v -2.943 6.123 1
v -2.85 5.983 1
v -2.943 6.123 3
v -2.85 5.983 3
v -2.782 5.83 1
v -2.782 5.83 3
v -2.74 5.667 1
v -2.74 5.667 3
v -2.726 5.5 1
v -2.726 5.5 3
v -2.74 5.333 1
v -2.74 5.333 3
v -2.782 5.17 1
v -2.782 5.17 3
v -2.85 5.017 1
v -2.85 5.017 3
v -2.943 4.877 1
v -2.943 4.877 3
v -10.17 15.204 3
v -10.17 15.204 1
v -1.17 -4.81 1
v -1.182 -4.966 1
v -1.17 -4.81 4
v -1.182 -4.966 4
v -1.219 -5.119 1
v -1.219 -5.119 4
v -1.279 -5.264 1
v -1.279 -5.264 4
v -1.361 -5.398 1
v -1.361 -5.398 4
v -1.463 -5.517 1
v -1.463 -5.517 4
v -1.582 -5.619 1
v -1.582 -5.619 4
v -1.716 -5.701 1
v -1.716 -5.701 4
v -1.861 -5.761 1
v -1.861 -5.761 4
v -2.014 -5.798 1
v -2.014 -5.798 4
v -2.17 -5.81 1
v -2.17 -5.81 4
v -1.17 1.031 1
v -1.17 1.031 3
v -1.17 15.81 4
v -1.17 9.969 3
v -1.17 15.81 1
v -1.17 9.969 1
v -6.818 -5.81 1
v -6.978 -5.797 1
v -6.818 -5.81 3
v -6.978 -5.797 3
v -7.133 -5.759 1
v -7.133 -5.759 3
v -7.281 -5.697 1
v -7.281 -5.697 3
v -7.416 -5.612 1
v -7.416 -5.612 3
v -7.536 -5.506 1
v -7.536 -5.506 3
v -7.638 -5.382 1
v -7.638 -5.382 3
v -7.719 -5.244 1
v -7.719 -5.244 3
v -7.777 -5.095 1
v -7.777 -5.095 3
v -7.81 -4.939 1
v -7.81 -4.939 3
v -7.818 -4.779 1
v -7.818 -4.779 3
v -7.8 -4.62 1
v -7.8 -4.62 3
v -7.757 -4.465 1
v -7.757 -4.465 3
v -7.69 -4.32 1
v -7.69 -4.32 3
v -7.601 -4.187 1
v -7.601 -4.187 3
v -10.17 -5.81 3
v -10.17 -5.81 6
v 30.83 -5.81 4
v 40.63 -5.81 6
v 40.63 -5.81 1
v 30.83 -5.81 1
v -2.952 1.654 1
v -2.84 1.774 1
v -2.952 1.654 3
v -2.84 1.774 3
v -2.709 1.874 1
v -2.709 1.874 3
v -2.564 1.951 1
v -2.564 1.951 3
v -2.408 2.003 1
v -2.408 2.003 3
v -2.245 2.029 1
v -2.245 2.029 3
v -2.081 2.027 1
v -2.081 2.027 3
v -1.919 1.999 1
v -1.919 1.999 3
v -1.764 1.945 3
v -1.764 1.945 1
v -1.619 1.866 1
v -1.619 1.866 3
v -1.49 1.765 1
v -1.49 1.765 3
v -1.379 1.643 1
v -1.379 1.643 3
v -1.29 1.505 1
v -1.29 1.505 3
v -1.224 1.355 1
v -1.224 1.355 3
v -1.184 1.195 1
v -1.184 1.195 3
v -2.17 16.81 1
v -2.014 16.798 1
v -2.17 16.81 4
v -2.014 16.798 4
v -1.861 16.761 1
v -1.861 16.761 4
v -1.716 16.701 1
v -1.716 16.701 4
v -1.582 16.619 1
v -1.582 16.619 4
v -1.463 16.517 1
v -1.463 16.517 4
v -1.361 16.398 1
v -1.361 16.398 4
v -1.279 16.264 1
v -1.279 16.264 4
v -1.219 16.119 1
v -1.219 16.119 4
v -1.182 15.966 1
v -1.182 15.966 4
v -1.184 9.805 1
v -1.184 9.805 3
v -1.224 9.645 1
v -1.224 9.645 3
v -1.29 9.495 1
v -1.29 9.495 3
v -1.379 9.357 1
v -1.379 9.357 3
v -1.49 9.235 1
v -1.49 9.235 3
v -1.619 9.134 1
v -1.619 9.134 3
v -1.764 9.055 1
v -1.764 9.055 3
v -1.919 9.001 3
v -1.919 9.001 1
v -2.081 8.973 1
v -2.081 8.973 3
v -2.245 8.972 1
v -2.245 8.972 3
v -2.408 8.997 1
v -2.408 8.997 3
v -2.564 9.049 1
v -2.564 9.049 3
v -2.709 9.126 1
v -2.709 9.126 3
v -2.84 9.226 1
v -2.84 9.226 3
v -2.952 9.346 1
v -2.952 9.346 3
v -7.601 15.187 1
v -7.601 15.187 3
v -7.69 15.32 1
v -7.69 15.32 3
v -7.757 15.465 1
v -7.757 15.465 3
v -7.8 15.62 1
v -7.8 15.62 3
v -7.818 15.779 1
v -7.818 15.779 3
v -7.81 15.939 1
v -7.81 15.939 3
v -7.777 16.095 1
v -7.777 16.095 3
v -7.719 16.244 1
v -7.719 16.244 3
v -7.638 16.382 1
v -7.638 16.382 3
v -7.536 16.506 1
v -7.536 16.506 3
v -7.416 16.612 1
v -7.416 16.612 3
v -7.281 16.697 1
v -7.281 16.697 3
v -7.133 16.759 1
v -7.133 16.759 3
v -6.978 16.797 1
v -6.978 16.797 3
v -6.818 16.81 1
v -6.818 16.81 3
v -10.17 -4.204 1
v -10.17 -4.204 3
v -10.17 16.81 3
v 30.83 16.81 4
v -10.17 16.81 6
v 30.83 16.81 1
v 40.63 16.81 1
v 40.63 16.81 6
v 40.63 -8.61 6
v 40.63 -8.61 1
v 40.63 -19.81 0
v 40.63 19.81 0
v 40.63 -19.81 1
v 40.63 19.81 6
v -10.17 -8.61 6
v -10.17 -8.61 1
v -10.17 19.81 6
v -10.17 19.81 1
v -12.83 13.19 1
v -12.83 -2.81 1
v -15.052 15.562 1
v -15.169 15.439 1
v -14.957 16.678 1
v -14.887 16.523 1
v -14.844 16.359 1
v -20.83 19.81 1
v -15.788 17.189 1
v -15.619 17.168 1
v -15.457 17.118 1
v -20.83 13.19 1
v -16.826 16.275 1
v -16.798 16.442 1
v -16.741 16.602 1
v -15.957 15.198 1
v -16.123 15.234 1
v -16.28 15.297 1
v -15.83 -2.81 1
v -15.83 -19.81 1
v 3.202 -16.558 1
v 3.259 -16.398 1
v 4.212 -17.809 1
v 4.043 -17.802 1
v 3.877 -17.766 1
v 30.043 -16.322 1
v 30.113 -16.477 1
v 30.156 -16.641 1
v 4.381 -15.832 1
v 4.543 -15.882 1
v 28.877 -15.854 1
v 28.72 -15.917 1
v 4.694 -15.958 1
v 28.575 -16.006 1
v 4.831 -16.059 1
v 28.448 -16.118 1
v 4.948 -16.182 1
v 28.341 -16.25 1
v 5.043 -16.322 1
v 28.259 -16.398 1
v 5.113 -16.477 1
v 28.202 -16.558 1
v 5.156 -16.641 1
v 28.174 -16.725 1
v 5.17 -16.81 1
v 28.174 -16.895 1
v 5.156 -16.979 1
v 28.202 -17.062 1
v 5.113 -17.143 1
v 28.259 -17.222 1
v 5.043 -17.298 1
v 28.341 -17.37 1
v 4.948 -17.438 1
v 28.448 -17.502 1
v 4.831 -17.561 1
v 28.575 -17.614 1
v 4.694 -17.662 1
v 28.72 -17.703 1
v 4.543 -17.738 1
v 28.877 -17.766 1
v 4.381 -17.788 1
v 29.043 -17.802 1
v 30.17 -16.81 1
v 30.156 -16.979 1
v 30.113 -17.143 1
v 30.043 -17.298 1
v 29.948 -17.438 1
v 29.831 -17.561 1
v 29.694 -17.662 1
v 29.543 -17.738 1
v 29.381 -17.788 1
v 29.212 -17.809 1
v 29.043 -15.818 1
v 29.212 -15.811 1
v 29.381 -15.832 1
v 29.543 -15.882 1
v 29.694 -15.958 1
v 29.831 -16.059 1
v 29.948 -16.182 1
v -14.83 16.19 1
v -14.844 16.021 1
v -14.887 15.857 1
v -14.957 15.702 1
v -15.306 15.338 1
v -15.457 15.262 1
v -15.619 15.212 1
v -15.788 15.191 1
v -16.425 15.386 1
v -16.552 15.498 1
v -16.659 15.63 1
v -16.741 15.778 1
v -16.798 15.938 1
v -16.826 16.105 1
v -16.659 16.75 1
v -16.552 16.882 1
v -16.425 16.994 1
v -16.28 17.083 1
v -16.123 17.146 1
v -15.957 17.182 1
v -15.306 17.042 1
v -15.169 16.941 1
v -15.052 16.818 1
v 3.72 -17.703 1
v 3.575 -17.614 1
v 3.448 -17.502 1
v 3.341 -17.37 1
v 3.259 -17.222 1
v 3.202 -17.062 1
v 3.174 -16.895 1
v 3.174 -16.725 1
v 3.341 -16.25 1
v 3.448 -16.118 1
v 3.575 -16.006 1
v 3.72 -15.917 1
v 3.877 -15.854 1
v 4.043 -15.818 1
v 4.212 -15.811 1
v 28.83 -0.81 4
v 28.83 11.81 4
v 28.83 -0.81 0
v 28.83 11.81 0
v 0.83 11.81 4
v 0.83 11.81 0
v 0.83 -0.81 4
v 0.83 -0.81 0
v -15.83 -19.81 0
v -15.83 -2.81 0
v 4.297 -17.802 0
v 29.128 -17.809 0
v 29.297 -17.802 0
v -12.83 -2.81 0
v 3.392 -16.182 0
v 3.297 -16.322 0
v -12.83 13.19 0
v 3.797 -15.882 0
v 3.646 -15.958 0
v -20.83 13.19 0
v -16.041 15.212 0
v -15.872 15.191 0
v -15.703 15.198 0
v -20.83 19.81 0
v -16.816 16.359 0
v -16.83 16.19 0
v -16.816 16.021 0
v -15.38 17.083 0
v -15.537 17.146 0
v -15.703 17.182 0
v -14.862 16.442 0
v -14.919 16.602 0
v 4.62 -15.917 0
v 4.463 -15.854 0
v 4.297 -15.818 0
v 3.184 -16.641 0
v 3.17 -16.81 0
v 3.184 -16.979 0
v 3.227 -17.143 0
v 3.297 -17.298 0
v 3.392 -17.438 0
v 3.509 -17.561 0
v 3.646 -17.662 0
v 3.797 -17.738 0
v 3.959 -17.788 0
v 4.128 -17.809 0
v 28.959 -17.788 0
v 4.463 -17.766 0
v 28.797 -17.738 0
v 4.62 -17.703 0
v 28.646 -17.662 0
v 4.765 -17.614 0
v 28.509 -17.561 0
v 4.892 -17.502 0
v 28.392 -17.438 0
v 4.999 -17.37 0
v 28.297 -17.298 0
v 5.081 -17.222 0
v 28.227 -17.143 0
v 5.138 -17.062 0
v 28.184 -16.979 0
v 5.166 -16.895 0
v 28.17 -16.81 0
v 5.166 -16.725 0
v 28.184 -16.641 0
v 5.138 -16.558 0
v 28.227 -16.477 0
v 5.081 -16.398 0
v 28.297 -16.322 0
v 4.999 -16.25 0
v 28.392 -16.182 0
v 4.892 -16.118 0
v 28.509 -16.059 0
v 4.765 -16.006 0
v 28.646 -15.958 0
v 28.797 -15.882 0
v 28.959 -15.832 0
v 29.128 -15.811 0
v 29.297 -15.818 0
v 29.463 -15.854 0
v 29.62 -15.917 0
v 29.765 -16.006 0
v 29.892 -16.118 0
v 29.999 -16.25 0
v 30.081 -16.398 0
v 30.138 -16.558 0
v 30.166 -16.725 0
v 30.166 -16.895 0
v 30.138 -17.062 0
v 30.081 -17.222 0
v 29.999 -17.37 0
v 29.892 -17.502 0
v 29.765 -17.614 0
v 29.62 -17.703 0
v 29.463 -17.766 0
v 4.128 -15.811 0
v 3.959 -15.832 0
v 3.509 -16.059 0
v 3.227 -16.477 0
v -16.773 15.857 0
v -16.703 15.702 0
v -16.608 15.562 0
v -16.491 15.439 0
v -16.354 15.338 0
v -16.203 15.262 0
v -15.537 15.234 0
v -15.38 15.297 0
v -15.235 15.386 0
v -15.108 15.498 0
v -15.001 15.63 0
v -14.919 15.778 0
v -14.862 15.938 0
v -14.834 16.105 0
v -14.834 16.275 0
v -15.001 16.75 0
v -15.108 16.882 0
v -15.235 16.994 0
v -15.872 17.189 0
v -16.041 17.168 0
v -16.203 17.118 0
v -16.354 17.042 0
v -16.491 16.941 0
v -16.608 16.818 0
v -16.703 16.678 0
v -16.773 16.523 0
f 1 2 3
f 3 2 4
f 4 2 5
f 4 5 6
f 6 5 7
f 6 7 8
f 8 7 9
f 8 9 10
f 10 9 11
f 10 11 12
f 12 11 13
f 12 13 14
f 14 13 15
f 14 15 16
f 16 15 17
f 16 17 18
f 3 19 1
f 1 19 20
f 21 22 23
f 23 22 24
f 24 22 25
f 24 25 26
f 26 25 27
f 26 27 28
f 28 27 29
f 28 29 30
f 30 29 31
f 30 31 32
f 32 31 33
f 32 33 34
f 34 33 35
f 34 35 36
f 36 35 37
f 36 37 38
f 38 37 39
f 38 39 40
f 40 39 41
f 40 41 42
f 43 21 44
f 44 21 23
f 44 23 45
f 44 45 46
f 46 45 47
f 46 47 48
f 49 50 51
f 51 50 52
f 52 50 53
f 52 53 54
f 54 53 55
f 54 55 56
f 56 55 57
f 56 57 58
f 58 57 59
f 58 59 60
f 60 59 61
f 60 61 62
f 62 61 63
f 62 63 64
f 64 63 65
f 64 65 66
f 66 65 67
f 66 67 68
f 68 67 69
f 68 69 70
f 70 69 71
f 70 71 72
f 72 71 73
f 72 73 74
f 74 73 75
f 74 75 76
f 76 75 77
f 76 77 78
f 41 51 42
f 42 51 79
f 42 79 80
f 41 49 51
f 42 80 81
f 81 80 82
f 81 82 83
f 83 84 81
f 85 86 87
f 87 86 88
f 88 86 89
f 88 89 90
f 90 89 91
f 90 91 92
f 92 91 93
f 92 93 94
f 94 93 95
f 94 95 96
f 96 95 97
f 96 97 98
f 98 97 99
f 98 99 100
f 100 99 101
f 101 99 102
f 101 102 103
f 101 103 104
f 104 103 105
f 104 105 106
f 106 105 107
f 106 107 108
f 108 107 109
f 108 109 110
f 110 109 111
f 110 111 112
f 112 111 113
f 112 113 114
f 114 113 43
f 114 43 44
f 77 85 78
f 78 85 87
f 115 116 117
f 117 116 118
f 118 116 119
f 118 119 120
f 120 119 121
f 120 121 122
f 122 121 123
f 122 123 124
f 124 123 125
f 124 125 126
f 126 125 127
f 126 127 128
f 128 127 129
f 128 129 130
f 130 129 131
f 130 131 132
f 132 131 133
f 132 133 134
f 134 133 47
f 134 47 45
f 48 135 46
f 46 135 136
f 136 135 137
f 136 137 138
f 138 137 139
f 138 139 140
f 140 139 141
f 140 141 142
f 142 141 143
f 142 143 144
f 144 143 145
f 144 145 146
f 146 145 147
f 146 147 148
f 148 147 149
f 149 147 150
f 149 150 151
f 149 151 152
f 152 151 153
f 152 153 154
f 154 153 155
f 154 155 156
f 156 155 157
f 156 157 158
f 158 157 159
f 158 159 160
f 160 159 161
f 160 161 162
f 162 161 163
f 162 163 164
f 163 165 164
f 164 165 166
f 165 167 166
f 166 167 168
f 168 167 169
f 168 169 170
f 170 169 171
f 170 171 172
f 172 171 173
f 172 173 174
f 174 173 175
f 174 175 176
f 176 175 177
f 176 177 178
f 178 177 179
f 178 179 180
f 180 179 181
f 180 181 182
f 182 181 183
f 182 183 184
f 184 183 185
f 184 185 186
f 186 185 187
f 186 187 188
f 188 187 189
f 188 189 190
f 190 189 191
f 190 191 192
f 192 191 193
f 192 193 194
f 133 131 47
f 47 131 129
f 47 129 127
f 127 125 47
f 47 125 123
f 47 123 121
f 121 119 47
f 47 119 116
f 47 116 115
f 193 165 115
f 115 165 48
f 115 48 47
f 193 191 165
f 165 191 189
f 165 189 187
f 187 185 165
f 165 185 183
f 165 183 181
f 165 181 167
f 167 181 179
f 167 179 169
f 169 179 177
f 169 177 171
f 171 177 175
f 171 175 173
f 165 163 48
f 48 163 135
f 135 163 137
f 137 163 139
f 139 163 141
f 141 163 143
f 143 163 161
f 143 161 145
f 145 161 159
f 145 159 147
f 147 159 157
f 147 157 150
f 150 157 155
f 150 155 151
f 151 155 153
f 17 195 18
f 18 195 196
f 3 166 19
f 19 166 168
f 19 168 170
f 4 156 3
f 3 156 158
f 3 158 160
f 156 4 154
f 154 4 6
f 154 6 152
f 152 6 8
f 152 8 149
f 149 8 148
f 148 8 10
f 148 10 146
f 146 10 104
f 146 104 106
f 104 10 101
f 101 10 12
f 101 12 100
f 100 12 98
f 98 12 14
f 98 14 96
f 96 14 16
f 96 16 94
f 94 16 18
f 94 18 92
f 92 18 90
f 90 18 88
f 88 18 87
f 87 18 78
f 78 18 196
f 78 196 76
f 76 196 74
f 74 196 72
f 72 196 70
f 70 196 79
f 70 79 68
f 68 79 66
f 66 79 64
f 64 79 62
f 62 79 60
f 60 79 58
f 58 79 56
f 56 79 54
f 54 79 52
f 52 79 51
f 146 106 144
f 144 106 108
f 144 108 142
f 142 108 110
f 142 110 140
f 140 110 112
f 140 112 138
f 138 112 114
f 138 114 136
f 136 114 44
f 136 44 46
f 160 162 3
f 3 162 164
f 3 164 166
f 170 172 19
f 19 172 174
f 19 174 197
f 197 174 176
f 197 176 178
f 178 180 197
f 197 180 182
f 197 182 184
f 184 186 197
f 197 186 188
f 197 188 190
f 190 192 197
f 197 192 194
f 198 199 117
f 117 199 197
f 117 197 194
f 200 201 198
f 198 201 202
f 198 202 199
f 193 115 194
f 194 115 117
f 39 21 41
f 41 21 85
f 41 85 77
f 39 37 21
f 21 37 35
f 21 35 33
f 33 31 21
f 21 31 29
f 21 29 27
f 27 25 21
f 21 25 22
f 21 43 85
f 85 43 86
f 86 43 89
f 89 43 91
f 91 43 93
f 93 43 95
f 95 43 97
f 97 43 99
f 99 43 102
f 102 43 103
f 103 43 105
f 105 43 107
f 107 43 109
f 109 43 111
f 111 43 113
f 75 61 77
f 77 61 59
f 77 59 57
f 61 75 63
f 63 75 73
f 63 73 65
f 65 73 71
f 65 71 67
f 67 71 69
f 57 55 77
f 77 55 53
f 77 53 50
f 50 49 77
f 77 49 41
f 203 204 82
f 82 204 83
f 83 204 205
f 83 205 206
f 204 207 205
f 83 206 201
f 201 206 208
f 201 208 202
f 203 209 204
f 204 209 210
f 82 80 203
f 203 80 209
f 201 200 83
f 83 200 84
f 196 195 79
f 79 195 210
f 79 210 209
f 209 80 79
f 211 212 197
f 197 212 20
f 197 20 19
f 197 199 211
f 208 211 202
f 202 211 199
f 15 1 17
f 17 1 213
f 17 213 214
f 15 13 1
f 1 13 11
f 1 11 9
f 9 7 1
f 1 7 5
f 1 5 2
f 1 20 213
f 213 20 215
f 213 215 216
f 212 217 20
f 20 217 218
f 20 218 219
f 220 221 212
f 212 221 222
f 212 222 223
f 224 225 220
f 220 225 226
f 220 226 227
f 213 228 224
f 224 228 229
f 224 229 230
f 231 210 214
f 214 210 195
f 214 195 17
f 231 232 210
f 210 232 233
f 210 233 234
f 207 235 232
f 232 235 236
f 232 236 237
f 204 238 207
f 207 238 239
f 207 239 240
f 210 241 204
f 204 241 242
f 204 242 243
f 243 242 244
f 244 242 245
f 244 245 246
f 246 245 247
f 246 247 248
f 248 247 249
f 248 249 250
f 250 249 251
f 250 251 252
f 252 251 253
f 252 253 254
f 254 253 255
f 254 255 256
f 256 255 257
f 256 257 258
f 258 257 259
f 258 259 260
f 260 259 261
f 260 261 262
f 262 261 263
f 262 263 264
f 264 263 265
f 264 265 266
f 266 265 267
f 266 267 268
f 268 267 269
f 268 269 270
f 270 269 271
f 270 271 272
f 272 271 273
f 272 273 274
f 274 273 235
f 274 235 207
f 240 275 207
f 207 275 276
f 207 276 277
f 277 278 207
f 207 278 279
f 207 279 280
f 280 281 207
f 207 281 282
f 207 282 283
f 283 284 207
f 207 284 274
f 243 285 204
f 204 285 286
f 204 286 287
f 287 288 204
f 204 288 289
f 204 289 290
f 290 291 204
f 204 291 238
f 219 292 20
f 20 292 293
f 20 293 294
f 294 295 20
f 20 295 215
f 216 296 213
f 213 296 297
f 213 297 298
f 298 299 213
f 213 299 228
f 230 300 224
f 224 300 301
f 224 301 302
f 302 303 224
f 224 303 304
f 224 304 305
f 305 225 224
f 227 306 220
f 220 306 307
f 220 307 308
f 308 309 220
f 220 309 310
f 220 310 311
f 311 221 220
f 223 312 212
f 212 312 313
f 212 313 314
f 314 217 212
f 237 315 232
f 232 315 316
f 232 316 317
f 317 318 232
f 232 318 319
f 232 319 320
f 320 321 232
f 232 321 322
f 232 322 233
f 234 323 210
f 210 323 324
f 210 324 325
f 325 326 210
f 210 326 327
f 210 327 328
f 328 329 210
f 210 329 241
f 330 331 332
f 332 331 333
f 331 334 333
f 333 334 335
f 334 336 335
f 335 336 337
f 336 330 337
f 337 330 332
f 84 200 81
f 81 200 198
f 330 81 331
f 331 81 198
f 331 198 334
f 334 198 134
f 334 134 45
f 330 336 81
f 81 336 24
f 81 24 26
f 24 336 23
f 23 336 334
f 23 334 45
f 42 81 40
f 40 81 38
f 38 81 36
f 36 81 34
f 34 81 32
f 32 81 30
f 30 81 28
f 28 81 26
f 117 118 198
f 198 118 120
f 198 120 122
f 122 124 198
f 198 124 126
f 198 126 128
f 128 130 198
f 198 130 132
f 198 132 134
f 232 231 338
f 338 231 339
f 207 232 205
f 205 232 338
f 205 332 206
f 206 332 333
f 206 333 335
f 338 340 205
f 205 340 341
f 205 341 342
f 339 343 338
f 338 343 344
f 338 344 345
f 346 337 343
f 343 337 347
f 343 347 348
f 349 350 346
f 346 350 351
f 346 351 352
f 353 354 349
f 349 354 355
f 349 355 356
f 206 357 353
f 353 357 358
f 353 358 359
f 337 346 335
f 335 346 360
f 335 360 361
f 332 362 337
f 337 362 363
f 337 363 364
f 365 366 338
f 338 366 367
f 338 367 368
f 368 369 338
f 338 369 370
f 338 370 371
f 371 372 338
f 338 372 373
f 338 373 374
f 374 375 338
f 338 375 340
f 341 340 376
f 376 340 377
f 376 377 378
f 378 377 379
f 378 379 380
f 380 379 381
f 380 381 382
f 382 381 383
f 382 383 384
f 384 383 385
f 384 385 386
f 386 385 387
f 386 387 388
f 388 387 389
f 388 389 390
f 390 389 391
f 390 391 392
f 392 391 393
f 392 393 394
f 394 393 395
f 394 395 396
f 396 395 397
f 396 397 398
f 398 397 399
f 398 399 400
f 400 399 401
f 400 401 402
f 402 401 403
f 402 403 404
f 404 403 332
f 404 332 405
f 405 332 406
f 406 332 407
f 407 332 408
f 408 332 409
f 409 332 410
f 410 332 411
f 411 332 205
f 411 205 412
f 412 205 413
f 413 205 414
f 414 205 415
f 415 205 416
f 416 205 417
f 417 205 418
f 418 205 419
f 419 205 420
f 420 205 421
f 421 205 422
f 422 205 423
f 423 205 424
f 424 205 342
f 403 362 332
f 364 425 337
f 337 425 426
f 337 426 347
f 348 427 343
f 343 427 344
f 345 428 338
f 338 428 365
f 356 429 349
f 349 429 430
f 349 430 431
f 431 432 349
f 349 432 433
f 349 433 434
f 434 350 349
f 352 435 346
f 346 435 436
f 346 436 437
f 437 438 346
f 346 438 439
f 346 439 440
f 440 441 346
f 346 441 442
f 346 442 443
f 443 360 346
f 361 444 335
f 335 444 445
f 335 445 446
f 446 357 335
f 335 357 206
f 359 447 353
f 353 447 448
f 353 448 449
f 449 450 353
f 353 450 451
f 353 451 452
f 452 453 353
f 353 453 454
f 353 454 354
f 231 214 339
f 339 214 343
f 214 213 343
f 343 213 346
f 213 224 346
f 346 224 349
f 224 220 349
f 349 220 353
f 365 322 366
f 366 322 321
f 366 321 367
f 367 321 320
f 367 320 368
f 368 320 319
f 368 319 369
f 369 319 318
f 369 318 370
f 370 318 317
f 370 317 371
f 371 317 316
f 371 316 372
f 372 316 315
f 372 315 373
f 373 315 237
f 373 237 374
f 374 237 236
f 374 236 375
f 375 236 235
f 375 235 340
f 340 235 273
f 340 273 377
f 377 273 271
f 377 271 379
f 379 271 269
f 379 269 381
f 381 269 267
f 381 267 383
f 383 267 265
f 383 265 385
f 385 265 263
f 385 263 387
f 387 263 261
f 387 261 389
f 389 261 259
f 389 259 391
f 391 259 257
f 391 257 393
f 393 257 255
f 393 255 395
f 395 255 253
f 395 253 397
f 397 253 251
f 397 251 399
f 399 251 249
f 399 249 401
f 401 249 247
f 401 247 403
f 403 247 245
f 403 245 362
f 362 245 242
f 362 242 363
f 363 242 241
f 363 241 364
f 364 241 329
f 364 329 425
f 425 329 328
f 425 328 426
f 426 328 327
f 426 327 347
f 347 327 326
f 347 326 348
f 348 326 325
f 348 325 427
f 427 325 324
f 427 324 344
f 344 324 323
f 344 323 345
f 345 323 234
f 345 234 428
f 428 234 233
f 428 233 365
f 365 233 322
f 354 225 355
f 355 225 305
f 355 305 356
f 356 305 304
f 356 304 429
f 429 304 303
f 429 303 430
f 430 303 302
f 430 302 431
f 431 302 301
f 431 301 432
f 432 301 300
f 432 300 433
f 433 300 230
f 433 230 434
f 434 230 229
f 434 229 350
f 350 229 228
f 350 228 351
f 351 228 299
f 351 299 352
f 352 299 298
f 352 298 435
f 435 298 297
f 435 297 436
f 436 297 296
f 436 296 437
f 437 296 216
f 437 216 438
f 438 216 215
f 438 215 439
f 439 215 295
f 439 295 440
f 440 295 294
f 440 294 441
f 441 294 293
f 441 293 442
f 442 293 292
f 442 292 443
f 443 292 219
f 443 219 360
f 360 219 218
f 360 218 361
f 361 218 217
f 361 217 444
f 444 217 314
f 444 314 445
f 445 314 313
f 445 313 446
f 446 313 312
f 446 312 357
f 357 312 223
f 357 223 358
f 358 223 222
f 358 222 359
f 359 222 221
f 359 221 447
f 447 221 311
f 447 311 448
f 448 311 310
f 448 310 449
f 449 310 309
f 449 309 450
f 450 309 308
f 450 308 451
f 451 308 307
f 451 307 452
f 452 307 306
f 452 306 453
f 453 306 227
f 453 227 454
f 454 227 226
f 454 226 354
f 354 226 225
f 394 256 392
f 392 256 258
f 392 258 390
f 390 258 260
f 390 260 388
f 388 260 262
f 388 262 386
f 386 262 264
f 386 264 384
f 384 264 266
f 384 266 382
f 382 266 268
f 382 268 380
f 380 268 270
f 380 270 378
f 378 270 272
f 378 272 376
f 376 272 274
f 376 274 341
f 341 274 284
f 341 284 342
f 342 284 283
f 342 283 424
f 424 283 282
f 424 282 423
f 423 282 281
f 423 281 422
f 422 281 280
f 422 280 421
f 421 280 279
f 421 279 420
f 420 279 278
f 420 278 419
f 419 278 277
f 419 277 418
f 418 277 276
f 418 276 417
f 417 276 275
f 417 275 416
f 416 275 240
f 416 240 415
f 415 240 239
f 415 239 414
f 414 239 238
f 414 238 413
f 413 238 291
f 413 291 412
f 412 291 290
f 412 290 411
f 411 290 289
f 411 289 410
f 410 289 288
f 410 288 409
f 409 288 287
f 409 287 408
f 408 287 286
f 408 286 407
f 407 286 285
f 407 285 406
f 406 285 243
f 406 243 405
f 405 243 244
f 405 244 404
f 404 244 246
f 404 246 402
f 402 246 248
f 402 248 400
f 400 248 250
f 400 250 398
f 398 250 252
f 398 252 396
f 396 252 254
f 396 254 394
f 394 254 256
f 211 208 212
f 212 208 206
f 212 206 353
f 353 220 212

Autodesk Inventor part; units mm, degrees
ref_plane "YZ Plane" through (0, 0, 0) normal (1, 0, 0) x (0, 1, 0)
ref_plane "XZ Plane" through (0, 0, 0) normal (0, 1, 0) x (-1, 0, 0)
ref_plane "XY Plane" through (0, 0, 0) normal (0, 0, 1) x (1, 0, 0)
sketch "Sketch1" plane through (0, 0, 0) normal (0, 0, 1) x (1, 0, 0)
  line L0 (-40.83, 19.81) -> (40.83, 19.81)
  line L1 (40.83, 19.81) -> (40.83, -19.81)
  line L2 (40.83, -19.81) -> (-40.83, -19.81)
  line L3 (-40.83, -19.81) -> (-40.83, 19.81)
  point P0 (0, 0)
  dimension "d0" = 81.66
  dimension "d1" = 39.62
  dimension "d2" = 19.81
  dimension "d3" = 40.83
extrude "Extrusion1" add sketch "Sketch1" along normal blind 1
sketch "Sketch2" plane through (0, 0, 1) normal (0, 0, 1) x (1, 0, 0)
  line L0 (-40.83, 19.81) -> (-40.83, -19.81) projected
  line L1 (-40.83, -19.81) -> (40.83, -19.81) projected
  point P0 (0, 0)
  point P1 (-15.83, 16.19)
  point P2 (4.17, -16.81)
  point P3 (29.17, -16.81)
  dimension "d6" = 25
  dimension "d7" = 36
  dimension "d8" = 45
  dimension "d9" = 3
  dimension "d10" = 3
  dimension "d11" = 70
hole "Hole1" at (-15.83, 16.19, 1) at (4.17, -16.81, 1) at (29.17, -16.81, 1) direction (0, 0, -1) diameter 2 depth 3 tip angle 118
sketch "Sketch3" plane through (0, 0, 1) normal (0, 0, 1) x (1, 0, 0)
  line L0 (-40.83, 19.81) -> (-40.83, -19.81) projected
  line L1 (-40.83, 13.19) -> (-12.83, 13.19)
  line L2 (-12.83, 13.19) -> (-12.83, -2.81)
  line L3 (-12.83, -2.81) -> (-40.83, -2.81)
  line L4 (-40.83, -2.81) -> (-40.83, 13.19)
  line L5 (-40.83, -19.81) -> (40.83, -19.81) projected
  line L6 (40.83, 19.81) -> (-40.83, 19.81) projected
  line L7 (-40.83, 19.81) -> (-20.83, 19.81)
  line L8 (-20.83, 19.81) -> (-20.83, 13.19)
  line L9 (-20.83, 13.19) -> (-40.83, 13.19)
  line L10 (-40.83, 13.19) -> (-40.83, 19.81)
  line L11 (-40.83, -19.81) -> (40.83, -19.81) projected
  line L12 (40.83, -19.81) -> (40.83, 19.81) projected
  line L13 (-20.83, 19.81) -> (40.83, 19.81)
  line L14 (40.83, 19.81) -> (40.83, -19.81)
  line L15 (40.83, -19.81) -> (-20.83, -19.81)
  line L16 (-20.83, -19.81) -> (-20.83, 19.81)
  line L17 (-40.83, -2.81) -> (-20.83, -2.81)
  line L18 (-20.83, -2.81) -> (-20.83, -19.81)
  line L19 (-20.83, -19.81) -> (-40.83, -19.81)
  line L20 (-40.83, -19.81) -> (-40.83, -2.81)
  point P0 (0, 0)
  point P1 (-0.83, -19.81)
  point P2 (-20.83, -2.81)
  dimension "d19" = 28
  dimension "d20" = 33
  dimension "d21" = 17
  dimension "d22" = 8
extrude "Extrusion2" cut sketch "Sketch3" against normal blind 1 contours L6 L8 L1 L0 | L1 L16 L3 L0 | L3 L16 L5 L0 | L1 L2 L3 L16
sketch "Sketch4" plane through (0, 0, 1) normal (0, 0, 1) x (1, 0, 0)
  line L0 (-12.83, -2.81) -> (-20.83, -2.81) projected
  line L1 (-20.83, -2.81) -> (-20.83, -19.81) projected
  line L2 (-15.83, -2.81) -> (-20.83, -2.81)
  line L3 (-20.83, -2.81) -> (-20.83, -19.81)
  line L4 (-20.83, -19.81) -> (-15.83, -19.81)
  line L5 (-15.83, -19.81) -> (-15.83, -2.81)
  line L6 (-12.83, 13.19) -> (-12.83, -2.81) projected
  point P0 (0, 0)
  dimension "d26" = 3
extrude "Extrusion3" cut sketch "Sketch4" against normal blind 1
sketch "Sketch5" plane through (0, 0, 1) normal (0, 0, 1) x (1, 0, 0)
  line L0 (-1.17, 16.81) -> (30.83, 16.81)
  line L1 (30.83, 16.81) -> (30.83, -5.81)
  line L2 (30.83, -5.81) -> (-1.17, -5.81)
  line L3 (-1.17, -5.81) -> (-1.17, 16.81)
  line L4 (40.83, -19.81) -> (40.83, 19.81) projected
  line L5 (40.83, 19.81) -> (-20.83, 19.81) projected
  line L6 (-15.83, -19.81) -> (40.83, -19.81) projected
  point P0 (0, 0)
  dimension "d29" = 10
  dimension "d30" = 42
  dimension "d31" = 3
  dimension "d32" = 14
extrude "Extrusion4" add sketch "Sketch5" along normal blind 3
sketch "Sketch6" plane through (0, 0, 4) normal (0, 0, 1) x (1, 0, 0)
  line L0 (0.83, 11.81) -> (28.83, 11.81)
  line L1 (28.83, 11.81) -> (28.83, -0.81)
  line L2 (28.83, -0.81) -> (0.83, -0.81)
  line L3 (0.83, -0.81) -> (0.83, 11.81)
  line L4 (-1.17, 16.81) -> (-1.17, -5.81) projected
  line L5 (30.83, -5.81) -> (30.83, 16.81) projected
  line L6 (30.83, 16.81) -> (-1.17, 16.81) projected
  line L7 (-1.17, -5.81) -> (30.83, -5.81) projected
  point P0 (0, 0)
  dimension "d35" = 2
  dimension "d36" = 2
  dimension "d37" = 5
  dimension "d38" = 5
extrude "Extrusion5" cut sketch "Sketch6" against normal blind 4 contours L0 L1 L2 L3
sketch "Sketch7" plane through (0, 0, 1) normal (0, 0, 1) x (1, 0, 0)
  line L0 (40.83, -19.81) -> (40.83, 19.81) projected
  line L1 (-10.17, -5.81) -> (40.83, -5.81)
  line L2 (40.83, -5.81) -> (40.83, -8.61)
  line L3 (40.83, -8.61) -> (-10.17, -8.61)
  line L4 (-10.17, -8.61) -> (-10.17, -5.81)
  line L5 (40.83, 19.81) -> (-20.83, 19.81) projected
  line L6 (-10.17, 19.81) -> (40.83, 19.81)
  line L7 (40.83, 19.81) -> (40.83, 16.81)
  line L8 (40.83, 16.81) -> (-10.17, 16.81)
  line L9 (-10.17, 16.81) -> (-10.17, 19.81)
  line L10 (30.83, 16.81) -> (-1.17, 16.81) projected
  line L11 (-1.17, -5.81) -> (30.83, -5.81) projected
  point P0 (0, 0)
  point P1 (40.83, -5.81)
  dimension "d41" = 3
  dimension "d42" = 51
  dimension "d43" = 2.8
extrude "Extrusion6" add sketch "Sketch7" along normal blind 5
sketch "Sketch8" plane through (40.83, -19.81, 0) normal (1, 0, 0) x (0, 0, -1)
  line L0 (0, 0) -> (0, 39.62) projected
  line L1 (0, 0) -> (-6, 0)
  line L2 (-6, 0) -> (-6, 39.62)
  line L3 (-6, 39.62) -> (0, 39.62)
  line L4 (0, 39.62) -> (0, 0)
  point P0 (0, 19.81)
extrude "Extrusion7" cut sketch "Sketch8" against normal blind 0.2
sketch "Sketch9" plane through (0, 0, 1) normal (0, 0, 1) x (1, 0, 0)
  line L0 (-10.17, 16.81) -> (40.63, 16.81) projected
  line L1 (-10.17, 16.81) -> (-1.17, 5.5) construction
  line L2 (-1.17, 16.81) -> (-1.17, -5.81) projected
  line L3 (-10.9525, 16.1873) -> (-1.9525, 4.8773)
  line L4 (-0.3875, 6.1227) -> (-9.3875, 17.4327)
  arc A0 (-9.3875, 17.4327) -> (-10.9525, 16.1873) centre (-10.17, 16.81) ccw
  arc A1 (-1.9525, 4.8773) -> (-0.3875, 6.1227) centre (-1.17, 5.5) ccw
  line L5 (-10.17, -5.81) -> (-1.17, -5.81) projected
  line L6 (-1.17, 5.5) -> (-10.17, -5.81) construction
  line L7 (-1.9525, 6.1227) -> (-10.9525, -5.1873)
  line L8 (-9.3875, -6.4327) -> (-0.3875, 4.8773)
  arc A2 (-0.3875, 4.8773) -> (-1.9525, 6.1227) centre (-1.17, 5.5) ccw
  arc A3 (-10.9525, -5.1873) -> (-9.3875, -6.4327) centre (-10.17, -5.81) ccw
  line L9 (-10.17, 19.81) -> (-10.17, 16.81) projected
  line L10 (-10.17, 19.81) -> (-10.17, -8.4856)
  point P0 (0, 0)
  point P1 (-5.67, 11.155)
  point P2 (-5.67, -0.155)
  point P3 (-10.17, 15.204)
  point P4 (-2.448, 5.5)
  point P5 (-10.17, -4.204)
  point P6 (-8.892, -5.81)
  point P7 (-1.17, 3.894)
  point P8 (-1.17, 7.106)
  point P9 (-8.892, 16.81)
  dimension "d48" = 2
  dimension "d49" = 2
extrude "Extrusion8" add sketch "Sketch9" along normal blind 2 contours L0 L4 L2 A2 L7 L3 L10 | L7 A2 L2 A1 L3 | L3 A1 L2 L8 L5 L10 L7
fillet "Fillet1" radius 1 6 edges at (-8.892, 16.81, 2) (-1.17, 7.106, 2) (-1.17, 16.81, 2.5) (-1.17, 3.894, 2) (-8.892, -5.81, 2) (-1.17, -5.81, 2.5)
fillet "Fillet2" radius 1 1 edges at (-2.448, 5.5, 2)
equation "\"BendRadius\" = Thickness"
equation "\"BendReliefWidth\" = Thickness"
equation "\"BendReliefDepth\" = 0.5 * Thickness"
equation "\"CornerReliefSize\" = 4 * Thickness"
equation "\"MinimumRemnant\" = 2 * Thickness"
equation "\"TransitionRadius\" = BendRadius"
equation "\"JacobiRadiusSize\" = BendRadius"
equation "\"GapSize\" = Thickness"
equation "\"Thickness\" = 0.5"
properties part number "gen2-hdmi-mount"
